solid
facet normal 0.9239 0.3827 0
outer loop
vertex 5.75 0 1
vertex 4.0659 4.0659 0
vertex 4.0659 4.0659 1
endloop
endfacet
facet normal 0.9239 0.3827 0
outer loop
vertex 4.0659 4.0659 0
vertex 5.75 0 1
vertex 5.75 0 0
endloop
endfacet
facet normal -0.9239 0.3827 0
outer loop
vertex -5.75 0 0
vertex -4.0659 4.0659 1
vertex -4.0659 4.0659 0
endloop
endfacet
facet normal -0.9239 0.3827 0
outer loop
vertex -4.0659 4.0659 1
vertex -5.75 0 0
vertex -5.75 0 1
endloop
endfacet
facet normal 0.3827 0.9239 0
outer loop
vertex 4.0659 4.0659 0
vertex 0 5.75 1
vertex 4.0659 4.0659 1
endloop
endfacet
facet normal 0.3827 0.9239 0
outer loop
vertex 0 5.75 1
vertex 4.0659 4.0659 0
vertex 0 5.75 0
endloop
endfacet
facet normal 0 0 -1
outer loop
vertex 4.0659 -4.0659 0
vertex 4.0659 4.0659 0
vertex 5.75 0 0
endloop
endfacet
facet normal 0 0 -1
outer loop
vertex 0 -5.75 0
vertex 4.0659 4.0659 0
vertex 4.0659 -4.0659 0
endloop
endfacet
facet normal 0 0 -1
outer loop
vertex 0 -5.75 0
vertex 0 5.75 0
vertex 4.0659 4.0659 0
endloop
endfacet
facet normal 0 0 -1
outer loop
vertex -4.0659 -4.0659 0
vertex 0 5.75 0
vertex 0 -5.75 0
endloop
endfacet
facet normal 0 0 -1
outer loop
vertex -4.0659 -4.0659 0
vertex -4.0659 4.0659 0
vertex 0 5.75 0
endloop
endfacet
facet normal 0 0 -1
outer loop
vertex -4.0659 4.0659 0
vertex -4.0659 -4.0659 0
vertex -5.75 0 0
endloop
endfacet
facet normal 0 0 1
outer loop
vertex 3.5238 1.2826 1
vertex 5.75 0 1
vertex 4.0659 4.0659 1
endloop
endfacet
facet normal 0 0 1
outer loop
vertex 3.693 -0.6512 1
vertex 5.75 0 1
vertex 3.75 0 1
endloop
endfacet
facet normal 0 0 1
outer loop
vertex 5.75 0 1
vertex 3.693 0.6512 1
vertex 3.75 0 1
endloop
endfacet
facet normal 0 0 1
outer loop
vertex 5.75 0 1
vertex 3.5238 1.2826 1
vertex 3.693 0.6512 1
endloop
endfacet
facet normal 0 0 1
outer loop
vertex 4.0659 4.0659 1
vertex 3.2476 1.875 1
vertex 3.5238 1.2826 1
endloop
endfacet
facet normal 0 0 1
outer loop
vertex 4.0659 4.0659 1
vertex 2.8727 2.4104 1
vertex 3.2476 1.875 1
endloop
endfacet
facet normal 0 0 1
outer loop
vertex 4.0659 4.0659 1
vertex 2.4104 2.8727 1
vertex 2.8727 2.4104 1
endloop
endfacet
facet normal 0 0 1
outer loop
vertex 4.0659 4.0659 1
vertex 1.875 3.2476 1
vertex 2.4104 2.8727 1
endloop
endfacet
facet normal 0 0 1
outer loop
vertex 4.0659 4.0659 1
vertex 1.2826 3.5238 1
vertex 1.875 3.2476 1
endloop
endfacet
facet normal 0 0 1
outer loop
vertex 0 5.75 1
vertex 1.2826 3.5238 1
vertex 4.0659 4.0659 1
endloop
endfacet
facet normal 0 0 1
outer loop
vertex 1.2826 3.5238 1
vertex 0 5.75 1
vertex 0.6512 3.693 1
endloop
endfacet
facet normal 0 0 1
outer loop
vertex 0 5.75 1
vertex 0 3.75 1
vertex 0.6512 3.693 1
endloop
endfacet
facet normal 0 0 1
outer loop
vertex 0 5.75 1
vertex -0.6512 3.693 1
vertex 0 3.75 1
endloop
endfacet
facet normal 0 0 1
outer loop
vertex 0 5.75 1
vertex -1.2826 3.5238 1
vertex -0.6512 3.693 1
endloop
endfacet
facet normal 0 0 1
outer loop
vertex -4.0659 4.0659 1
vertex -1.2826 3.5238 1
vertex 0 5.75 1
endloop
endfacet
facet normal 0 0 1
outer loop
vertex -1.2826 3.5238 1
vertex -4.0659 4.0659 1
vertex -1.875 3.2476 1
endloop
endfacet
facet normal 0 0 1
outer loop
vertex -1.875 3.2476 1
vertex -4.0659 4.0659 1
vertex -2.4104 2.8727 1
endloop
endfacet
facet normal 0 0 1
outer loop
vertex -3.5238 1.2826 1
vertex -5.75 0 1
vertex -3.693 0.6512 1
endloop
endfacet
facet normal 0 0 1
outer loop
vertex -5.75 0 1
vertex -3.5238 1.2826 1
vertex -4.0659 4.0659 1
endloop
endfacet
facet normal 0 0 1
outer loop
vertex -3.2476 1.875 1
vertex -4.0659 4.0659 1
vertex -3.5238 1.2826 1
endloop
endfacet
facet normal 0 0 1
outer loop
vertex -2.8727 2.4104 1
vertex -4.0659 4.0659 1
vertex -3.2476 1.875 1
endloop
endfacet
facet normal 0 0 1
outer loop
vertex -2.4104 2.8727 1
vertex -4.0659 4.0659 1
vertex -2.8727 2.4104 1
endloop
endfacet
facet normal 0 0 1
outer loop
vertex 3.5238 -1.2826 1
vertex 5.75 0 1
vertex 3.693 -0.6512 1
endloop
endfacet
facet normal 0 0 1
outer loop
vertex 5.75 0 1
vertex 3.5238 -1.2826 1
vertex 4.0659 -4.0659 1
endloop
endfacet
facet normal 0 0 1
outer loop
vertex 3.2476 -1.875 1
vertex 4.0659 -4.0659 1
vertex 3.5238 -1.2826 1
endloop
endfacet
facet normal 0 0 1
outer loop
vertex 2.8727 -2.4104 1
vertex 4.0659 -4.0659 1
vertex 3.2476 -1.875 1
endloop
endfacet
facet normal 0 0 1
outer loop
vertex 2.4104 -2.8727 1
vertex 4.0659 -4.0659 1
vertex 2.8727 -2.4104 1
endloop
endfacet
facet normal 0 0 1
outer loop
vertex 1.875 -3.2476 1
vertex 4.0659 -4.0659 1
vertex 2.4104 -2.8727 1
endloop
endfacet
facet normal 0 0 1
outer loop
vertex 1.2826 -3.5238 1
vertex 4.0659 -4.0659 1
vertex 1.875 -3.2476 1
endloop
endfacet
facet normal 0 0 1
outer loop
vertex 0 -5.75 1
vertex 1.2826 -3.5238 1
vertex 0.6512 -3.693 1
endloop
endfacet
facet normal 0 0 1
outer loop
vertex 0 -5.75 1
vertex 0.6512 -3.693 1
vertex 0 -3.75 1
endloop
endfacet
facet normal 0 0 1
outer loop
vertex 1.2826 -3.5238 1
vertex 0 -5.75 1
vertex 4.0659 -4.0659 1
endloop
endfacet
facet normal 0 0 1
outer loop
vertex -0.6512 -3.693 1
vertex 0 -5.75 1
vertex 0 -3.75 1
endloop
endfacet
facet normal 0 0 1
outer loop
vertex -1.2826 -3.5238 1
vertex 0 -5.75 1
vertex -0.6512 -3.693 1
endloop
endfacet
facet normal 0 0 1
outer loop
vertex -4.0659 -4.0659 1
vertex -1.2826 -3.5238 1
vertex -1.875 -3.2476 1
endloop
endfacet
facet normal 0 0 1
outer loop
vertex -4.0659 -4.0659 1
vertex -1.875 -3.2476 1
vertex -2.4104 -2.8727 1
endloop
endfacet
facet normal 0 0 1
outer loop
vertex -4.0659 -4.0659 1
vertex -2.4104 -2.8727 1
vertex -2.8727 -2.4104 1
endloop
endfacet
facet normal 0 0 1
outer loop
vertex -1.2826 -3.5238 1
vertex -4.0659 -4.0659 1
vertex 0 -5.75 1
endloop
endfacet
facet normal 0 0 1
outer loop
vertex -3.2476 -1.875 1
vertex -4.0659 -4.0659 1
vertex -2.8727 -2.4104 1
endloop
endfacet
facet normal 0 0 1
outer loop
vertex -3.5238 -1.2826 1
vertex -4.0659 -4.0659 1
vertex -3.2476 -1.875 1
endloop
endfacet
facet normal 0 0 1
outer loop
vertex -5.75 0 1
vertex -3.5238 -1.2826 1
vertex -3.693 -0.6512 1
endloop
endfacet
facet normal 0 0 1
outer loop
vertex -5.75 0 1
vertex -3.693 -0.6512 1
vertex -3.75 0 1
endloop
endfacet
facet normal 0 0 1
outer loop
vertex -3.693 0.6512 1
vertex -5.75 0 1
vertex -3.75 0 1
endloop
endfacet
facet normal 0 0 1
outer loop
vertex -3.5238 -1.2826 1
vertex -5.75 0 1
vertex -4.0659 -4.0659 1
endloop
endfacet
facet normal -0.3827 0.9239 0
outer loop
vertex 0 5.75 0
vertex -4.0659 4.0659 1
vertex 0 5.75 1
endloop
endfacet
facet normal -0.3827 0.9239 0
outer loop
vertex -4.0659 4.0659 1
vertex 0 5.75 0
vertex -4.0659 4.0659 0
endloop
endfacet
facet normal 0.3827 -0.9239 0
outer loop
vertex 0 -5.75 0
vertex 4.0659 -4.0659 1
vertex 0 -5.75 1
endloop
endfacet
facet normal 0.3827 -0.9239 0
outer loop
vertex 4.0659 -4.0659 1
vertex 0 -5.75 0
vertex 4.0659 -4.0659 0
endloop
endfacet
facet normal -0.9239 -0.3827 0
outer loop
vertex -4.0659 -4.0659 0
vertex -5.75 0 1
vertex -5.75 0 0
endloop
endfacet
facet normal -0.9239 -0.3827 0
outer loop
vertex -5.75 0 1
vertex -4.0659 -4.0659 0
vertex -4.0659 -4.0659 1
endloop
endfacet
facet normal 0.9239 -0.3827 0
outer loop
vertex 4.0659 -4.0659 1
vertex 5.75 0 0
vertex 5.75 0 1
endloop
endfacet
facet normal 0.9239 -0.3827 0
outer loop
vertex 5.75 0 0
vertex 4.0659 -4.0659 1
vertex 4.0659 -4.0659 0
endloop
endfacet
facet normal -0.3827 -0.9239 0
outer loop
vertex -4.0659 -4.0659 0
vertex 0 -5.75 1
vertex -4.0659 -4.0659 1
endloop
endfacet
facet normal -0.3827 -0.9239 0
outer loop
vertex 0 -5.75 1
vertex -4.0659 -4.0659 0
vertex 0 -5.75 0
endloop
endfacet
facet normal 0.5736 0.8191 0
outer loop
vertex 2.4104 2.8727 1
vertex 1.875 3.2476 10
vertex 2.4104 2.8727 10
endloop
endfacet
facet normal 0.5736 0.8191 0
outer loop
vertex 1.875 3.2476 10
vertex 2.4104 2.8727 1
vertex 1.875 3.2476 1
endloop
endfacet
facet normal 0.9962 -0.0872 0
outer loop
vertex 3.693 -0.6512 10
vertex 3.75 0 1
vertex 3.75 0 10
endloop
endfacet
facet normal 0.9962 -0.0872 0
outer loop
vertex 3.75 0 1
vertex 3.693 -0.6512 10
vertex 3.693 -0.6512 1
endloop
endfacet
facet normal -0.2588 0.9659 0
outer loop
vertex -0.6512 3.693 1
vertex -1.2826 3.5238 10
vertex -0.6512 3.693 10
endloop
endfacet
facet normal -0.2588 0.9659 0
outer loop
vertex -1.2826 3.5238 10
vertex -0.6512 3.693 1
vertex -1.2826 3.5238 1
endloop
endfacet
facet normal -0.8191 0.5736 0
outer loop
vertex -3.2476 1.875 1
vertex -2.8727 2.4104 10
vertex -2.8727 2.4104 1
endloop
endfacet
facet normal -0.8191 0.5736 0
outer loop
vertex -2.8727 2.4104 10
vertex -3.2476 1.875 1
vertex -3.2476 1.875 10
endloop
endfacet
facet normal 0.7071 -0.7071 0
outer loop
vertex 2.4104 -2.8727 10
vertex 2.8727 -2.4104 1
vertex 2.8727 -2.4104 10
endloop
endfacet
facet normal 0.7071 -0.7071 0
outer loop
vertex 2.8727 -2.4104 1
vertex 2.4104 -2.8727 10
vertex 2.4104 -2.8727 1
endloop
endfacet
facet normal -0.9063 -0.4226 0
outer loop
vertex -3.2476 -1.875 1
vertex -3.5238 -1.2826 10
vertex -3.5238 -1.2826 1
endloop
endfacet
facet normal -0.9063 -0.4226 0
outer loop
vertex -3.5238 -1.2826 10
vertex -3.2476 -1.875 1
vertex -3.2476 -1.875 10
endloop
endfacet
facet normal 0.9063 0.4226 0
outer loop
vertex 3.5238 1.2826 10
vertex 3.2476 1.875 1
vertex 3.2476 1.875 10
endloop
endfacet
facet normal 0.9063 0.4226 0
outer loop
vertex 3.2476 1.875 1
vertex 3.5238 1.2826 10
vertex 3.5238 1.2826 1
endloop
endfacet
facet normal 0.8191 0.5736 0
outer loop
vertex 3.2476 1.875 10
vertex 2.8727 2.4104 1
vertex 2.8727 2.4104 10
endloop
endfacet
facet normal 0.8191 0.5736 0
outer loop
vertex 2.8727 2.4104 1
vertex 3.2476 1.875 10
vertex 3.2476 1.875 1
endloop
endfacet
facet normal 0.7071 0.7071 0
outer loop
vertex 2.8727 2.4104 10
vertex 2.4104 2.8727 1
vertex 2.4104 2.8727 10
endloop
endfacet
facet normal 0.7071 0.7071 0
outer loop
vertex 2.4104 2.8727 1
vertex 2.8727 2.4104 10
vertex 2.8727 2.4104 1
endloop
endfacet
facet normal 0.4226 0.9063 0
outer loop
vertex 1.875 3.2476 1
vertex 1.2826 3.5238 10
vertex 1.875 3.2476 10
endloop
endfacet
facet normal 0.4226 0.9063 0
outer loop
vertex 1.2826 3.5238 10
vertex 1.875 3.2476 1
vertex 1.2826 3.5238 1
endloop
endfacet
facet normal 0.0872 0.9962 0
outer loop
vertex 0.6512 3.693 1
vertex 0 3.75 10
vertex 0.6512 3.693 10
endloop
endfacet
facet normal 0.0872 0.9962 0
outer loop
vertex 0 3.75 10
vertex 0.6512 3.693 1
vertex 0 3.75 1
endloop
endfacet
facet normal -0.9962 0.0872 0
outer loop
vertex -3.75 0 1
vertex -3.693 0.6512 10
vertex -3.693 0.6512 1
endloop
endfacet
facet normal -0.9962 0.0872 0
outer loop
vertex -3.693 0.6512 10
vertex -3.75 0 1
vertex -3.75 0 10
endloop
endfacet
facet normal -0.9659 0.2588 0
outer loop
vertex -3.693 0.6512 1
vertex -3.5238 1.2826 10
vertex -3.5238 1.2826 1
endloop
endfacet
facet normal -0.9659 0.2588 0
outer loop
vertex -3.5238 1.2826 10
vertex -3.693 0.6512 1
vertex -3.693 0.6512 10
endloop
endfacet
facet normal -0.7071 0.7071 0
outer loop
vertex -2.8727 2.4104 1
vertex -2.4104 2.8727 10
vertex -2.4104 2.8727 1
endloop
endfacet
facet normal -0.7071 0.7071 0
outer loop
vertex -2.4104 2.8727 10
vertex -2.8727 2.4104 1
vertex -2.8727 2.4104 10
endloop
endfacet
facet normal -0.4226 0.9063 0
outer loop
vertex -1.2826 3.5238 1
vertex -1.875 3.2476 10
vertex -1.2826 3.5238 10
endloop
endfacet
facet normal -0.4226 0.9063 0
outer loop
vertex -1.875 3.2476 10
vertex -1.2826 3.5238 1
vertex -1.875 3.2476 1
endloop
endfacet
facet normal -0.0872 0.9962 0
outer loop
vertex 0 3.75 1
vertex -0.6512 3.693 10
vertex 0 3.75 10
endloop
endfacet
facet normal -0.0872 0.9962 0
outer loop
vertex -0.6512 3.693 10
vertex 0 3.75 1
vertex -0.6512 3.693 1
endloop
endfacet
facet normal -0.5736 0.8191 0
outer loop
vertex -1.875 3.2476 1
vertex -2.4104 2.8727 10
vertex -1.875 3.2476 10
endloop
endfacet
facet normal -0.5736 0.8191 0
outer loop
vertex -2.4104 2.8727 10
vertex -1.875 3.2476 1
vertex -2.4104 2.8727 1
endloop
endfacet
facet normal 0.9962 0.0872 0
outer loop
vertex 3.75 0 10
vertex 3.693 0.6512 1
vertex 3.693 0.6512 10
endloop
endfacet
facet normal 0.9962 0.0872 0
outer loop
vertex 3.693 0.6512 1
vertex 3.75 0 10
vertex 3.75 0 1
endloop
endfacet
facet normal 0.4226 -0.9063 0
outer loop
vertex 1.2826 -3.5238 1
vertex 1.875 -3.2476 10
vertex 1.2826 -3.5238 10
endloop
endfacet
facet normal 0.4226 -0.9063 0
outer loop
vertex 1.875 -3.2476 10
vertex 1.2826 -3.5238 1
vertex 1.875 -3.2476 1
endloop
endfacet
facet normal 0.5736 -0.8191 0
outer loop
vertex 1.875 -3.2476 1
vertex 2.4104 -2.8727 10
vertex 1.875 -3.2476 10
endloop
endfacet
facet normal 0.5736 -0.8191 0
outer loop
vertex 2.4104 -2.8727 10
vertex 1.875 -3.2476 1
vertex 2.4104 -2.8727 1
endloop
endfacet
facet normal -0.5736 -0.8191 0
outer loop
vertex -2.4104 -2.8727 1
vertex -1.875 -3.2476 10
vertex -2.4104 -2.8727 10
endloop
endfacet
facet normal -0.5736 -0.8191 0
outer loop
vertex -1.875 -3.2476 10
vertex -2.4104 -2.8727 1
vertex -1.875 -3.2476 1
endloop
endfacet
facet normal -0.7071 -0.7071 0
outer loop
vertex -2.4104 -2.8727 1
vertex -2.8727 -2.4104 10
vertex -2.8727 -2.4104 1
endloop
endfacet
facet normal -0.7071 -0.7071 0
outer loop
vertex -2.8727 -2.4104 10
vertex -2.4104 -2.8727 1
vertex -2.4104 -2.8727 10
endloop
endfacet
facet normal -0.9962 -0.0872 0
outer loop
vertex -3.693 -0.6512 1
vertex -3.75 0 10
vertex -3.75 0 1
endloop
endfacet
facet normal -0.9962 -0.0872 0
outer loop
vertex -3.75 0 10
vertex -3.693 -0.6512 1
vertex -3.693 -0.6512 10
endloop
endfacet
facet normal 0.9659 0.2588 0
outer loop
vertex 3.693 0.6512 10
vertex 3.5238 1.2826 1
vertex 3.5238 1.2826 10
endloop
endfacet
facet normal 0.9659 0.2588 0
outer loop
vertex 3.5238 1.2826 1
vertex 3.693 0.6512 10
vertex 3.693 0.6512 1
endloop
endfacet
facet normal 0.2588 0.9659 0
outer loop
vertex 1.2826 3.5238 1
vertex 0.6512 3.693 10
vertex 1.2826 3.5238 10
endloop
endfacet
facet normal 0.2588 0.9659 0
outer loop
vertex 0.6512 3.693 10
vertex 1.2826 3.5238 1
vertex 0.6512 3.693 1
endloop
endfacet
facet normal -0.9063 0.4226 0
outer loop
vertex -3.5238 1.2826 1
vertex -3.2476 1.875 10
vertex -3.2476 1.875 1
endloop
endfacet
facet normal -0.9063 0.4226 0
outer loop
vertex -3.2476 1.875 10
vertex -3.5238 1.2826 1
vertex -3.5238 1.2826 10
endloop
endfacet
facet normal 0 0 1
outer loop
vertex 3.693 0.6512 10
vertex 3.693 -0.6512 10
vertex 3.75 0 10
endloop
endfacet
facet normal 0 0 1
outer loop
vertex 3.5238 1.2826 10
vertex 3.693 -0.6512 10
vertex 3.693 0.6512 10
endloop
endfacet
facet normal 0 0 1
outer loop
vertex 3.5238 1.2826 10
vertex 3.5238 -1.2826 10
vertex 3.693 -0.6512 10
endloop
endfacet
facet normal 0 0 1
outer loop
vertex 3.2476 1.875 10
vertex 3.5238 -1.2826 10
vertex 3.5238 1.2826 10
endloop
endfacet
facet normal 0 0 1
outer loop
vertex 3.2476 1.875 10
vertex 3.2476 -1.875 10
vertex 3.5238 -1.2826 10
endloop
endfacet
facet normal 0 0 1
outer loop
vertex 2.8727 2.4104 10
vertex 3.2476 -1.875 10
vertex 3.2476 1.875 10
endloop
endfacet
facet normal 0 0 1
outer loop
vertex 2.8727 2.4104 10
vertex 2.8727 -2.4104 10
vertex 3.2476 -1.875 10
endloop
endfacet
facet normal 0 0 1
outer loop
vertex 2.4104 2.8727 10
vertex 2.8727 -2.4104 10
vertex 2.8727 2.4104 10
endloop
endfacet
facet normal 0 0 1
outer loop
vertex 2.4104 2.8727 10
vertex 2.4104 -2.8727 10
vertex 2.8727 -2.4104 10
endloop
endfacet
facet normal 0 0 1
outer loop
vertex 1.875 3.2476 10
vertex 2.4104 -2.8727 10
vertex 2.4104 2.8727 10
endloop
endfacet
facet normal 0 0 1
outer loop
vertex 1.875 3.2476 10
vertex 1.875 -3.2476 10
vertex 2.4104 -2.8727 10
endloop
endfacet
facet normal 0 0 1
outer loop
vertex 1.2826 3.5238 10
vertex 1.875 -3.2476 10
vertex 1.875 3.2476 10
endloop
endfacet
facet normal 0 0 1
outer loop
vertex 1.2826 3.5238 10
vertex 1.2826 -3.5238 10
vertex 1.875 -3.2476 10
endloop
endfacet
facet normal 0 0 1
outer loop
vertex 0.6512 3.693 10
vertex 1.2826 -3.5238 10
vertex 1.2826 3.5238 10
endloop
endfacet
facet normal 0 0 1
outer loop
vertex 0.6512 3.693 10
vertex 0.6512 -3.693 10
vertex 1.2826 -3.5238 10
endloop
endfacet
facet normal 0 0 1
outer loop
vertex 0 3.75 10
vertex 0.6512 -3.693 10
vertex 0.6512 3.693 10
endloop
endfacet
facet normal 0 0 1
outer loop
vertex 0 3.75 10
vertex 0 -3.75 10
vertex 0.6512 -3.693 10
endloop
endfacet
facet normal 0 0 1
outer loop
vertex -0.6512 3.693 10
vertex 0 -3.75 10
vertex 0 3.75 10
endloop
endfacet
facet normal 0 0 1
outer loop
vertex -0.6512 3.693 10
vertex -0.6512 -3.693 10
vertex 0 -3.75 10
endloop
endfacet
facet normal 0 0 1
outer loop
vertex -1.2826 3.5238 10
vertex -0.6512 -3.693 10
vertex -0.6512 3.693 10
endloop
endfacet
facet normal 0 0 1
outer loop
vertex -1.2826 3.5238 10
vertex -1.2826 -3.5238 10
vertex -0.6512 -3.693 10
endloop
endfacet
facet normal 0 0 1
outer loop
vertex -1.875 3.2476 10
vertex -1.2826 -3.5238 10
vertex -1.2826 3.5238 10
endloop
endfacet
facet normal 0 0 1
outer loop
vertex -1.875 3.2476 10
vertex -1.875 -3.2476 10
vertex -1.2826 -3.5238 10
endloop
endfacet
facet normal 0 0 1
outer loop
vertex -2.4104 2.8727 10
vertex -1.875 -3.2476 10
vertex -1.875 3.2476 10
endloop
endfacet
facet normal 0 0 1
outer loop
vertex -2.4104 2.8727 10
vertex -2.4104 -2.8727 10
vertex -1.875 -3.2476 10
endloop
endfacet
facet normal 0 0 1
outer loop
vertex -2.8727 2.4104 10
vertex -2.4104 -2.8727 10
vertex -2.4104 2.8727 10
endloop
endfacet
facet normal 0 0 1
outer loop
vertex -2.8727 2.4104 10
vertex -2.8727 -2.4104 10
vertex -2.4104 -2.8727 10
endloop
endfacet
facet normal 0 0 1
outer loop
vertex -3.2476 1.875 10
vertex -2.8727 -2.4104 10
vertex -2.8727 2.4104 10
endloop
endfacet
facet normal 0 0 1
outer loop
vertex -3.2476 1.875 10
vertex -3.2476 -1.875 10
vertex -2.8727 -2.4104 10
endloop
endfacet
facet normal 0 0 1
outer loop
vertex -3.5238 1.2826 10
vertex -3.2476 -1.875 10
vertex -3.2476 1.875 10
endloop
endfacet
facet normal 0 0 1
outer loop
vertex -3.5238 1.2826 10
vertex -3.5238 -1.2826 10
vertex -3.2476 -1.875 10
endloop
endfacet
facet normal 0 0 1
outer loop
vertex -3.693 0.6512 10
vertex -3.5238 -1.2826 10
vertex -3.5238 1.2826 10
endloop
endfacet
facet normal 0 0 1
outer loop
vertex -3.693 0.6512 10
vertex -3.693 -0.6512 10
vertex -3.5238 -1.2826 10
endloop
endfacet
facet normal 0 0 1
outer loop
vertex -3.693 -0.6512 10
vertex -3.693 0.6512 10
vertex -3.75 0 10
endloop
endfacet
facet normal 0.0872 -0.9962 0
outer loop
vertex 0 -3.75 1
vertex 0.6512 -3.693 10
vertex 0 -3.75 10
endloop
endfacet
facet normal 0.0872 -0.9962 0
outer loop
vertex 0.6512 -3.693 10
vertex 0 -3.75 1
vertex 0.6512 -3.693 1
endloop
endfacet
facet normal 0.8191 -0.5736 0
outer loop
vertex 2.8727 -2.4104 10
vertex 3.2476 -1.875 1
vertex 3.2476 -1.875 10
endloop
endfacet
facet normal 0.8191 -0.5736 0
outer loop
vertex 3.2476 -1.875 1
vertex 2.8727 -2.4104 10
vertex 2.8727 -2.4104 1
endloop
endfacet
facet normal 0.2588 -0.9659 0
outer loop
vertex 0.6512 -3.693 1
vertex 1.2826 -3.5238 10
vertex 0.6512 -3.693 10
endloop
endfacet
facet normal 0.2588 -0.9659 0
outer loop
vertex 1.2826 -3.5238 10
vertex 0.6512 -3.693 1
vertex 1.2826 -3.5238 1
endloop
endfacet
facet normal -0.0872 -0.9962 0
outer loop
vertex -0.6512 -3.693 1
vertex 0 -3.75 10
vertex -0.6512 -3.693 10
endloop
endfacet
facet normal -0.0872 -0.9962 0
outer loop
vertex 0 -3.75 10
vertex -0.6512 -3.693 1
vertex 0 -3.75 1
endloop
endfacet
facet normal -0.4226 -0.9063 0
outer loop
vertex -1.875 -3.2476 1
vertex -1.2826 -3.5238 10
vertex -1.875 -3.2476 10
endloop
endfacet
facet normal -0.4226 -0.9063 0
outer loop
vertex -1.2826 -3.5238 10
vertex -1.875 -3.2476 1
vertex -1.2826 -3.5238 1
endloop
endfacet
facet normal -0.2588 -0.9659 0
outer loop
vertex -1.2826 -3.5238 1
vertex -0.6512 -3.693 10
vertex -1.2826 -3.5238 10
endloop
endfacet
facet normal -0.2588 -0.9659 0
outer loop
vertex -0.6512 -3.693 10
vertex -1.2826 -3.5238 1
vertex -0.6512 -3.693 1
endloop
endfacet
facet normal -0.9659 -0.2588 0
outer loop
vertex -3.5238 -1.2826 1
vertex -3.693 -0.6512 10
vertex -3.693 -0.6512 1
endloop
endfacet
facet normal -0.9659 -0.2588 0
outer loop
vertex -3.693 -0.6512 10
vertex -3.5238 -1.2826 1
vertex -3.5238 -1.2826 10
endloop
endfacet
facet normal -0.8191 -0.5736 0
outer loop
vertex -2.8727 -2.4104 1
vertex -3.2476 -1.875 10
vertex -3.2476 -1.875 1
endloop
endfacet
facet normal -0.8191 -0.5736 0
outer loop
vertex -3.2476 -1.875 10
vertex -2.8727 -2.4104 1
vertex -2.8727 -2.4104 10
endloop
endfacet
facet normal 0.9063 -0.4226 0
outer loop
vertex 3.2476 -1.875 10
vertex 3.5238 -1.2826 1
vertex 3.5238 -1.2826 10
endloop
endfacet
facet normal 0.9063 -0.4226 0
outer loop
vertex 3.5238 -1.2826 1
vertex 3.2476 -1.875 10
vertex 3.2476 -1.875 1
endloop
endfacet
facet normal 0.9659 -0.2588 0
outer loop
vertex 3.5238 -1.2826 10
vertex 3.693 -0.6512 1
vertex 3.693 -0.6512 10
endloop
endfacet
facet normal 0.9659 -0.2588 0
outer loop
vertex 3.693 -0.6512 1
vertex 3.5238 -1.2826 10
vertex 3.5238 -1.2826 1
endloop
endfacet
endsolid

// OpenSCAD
$fn=36;

emergency_stop();

stop_rad = 7.5/2;
stop_height = 10;
flange_height = 1;
flange_rad = stop_rad+2;

module emergency_stop(){
    union(){
        cylinder(r=flange_rad, h=flange_height, $fn=8);
        cylinder(r=stop_rad, h=stop_height);
    }
}
